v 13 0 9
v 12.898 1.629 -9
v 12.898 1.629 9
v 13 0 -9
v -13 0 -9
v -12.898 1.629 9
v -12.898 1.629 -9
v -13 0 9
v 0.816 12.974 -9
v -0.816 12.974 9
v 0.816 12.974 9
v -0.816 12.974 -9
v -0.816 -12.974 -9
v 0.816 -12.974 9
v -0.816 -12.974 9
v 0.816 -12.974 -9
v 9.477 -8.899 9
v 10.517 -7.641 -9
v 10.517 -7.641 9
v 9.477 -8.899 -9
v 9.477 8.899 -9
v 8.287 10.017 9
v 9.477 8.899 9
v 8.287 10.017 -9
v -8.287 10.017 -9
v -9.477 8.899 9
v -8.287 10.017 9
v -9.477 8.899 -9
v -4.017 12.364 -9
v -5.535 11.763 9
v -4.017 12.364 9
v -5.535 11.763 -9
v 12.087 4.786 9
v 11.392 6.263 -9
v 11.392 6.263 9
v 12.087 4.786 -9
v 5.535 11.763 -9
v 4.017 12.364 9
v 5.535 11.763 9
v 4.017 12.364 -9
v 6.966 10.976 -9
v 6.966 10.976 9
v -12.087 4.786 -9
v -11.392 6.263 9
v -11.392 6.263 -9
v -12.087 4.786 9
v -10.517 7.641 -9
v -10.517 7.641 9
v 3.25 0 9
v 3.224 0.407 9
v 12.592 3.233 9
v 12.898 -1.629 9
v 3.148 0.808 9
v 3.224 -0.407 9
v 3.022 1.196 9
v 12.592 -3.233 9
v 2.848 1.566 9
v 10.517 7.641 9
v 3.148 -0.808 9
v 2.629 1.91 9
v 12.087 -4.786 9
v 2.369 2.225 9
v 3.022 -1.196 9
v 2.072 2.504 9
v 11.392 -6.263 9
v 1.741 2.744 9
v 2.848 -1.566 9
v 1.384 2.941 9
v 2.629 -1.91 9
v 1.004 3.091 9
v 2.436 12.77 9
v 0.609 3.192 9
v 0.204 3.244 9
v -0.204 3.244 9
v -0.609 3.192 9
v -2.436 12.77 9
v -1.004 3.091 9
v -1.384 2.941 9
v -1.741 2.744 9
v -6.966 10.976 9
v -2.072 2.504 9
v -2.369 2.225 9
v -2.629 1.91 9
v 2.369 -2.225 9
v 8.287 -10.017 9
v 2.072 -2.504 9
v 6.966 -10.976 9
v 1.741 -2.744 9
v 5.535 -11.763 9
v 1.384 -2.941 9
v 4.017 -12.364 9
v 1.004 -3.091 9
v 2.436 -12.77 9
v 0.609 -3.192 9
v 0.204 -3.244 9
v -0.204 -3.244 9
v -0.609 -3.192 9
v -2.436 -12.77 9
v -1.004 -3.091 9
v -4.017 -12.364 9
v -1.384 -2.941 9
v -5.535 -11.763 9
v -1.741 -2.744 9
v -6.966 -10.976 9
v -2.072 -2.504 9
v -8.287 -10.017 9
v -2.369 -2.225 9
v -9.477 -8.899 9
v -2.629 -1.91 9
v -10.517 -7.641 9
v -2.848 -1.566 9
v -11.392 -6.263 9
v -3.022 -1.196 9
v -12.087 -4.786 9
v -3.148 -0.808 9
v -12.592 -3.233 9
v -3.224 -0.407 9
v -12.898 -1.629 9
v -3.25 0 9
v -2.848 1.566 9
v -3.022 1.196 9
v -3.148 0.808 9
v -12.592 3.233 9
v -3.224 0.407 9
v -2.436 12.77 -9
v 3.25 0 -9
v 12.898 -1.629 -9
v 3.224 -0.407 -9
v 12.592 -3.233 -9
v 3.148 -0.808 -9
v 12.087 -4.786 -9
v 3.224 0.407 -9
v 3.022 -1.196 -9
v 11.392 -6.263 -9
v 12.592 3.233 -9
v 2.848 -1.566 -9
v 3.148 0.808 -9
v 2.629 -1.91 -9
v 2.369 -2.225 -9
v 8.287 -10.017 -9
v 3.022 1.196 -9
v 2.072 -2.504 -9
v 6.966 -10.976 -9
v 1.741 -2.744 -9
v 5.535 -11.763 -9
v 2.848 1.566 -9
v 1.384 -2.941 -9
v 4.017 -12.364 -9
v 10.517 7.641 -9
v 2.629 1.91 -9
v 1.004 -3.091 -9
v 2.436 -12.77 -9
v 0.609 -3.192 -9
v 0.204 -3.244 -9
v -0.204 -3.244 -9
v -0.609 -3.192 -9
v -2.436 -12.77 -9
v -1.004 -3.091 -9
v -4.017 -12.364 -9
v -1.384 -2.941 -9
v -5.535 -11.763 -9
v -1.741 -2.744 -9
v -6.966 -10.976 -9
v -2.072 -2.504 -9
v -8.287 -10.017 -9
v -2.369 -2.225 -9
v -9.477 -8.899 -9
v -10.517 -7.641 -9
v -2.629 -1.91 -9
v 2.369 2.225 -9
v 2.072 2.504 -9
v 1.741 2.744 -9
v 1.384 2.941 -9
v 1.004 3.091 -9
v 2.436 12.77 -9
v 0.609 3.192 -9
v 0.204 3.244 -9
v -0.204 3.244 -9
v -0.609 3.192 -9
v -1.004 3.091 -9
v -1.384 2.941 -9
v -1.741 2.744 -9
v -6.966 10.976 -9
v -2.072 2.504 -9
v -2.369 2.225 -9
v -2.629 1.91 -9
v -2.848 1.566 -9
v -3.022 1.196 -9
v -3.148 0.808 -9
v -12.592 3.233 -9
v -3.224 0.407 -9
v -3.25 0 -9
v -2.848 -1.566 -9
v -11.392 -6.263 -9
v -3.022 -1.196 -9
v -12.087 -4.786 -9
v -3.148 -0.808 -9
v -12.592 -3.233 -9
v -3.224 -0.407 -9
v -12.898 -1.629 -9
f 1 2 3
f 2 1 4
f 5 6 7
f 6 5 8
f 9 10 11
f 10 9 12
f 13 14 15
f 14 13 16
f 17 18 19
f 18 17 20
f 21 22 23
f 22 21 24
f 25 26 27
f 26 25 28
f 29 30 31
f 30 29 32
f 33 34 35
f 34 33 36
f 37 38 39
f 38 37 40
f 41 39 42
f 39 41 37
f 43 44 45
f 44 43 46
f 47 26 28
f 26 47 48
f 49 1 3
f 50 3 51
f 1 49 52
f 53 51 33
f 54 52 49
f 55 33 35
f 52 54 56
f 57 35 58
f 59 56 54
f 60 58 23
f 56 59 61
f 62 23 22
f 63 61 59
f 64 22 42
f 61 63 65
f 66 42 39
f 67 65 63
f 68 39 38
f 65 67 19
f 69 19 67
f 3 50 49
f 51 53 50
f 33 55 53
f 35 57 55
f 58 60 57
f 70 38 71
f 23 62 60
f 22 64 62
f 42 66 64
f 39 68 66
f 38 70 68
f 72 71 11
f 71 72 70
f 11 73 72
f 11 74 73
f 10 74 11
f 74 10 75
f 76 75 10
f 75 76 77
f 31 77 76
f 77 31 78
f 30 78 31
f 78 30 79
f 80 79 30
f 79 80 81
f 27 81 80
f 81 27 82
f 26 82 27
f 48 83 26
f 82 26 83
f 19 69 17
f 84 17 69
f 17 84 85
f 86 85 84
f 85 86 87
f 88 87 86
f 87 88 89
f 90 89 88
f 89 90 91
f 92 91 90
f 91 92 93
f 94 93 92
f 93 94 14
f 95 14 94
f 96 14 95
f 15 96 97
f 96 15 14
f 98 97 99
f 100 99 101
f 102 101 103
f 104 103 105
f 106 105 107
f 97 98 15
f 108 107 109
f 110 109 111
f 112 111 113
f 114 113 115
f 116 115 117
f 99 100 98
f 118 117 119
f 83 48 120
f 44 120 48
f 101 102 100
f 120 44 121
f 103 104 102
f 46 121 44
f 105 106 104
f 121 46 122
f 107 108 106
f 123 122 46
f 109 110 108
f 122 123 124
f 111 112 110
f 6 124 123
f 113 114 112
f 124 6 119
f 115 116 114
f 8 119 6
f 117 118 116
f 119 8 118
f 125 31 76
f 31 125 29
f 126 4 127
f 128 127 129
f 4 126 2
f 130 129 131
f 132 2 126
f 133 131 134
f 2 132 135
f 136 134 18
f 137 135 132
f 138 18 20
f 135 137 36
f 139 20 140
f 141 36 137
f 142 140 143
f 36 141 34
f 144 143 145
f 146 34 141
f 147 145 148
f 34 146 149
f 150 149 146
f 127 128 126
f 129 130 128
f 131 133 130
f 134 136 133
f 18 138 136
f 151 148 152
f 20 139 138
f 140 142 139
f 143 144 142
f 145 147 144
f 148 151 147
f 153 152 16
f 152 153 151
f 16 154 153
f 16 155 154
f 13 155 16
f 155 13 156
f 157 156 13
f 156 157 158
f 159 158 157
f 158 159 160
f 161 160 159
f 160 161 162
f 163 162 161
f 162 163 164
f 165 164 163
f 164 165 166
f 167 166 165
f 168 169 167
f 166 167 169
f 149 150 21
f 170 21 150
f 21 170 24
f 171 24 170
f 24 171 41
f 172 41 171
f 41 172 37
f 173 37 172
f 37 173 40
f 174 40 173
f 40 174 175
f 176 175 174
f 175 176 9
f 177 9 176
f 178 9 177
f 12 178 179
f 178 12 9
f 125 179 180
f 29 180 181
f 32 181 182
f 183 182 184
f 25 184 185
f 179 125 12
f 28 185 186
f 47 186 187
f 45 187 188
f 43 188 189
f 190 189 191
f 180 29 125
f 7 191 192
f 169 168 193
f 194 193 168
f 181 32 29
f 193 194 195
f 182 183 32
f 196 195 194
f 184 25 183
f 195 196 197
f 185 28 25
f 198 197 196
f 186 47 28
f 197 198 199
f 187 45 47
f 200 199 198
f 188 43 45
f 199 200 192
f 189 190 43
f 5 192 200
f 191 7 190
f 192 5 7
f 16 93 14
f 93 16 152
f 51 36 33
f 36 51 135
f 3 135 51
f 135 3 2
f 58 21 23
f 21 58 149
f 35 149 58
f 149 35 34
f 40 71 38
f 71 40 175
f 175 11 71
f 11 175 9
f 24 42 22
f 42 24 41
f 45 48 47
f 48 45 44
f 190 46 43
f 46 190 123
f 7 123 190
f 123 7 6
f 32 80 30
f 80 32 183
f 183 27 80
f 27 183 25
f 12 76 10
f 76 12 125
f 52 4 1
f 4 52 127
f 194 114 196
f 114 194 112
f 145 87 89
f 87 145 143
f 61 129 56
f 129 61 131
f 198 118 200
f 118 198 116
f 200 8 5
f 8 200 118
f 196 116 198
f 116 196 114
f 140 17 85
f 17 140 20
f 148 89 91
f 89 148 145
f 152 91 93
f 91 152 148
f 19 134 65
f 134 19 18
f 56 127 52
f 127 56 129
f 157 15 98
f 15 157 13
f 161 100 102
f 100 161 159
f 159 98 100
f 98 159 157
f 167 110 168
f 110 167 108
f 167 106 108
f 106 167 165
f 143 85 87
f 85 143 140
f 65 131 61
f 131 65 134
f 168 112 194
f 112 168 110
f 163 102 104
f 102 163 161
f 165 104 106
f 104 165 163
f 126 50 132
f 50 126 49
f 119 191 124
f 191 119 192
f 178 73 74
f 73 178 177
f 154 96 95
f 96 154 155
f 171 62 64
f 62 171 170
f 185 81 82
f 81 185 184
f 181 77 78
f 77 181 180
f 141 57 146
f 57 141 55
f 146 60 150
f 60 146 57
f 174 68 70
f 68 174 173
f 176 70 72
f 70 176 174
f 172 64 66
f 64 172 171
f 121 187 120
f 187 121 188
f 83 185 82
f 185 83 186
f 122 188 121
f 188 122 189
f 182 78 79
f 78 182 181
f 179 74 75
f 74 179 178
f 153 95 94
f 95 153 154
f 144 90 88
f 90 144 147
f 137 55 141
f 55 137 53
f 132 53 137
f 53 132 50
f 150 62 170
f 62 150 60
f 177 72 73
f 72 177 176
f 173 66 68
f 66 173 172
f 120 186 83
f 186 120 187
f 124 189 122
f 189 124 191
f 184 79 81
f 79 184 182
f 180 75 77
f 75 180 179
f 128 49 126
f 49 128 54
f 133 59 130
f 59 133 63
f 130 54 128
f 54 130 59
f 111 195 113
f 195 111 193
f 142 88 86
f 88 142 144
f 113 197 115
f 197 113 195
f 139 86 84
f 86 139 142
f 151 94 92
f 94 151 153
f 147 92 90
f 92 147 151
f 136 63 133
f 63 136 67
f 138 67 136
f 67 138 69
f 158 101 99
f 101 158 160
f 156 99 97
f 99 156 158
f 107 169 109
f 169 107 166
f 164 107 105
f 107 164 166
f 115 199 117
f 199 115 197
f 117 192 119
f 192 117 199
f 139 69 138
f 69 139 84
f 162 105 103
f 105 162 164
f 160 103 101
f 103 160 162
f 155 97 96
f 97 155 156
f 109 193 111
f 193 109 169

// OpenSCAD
$fn = 50;


difference() {
	union() {
		translate(v = [0, 0, -9.0000000000]) {
			cylinder(h = 18, r = 13.0000000000);
		}
	}
	union() {
		translate(v = [0, 0, -100.0000000000]) {
			cylinder(h = 200, r = 3.2500000000);
		}
	}
}
